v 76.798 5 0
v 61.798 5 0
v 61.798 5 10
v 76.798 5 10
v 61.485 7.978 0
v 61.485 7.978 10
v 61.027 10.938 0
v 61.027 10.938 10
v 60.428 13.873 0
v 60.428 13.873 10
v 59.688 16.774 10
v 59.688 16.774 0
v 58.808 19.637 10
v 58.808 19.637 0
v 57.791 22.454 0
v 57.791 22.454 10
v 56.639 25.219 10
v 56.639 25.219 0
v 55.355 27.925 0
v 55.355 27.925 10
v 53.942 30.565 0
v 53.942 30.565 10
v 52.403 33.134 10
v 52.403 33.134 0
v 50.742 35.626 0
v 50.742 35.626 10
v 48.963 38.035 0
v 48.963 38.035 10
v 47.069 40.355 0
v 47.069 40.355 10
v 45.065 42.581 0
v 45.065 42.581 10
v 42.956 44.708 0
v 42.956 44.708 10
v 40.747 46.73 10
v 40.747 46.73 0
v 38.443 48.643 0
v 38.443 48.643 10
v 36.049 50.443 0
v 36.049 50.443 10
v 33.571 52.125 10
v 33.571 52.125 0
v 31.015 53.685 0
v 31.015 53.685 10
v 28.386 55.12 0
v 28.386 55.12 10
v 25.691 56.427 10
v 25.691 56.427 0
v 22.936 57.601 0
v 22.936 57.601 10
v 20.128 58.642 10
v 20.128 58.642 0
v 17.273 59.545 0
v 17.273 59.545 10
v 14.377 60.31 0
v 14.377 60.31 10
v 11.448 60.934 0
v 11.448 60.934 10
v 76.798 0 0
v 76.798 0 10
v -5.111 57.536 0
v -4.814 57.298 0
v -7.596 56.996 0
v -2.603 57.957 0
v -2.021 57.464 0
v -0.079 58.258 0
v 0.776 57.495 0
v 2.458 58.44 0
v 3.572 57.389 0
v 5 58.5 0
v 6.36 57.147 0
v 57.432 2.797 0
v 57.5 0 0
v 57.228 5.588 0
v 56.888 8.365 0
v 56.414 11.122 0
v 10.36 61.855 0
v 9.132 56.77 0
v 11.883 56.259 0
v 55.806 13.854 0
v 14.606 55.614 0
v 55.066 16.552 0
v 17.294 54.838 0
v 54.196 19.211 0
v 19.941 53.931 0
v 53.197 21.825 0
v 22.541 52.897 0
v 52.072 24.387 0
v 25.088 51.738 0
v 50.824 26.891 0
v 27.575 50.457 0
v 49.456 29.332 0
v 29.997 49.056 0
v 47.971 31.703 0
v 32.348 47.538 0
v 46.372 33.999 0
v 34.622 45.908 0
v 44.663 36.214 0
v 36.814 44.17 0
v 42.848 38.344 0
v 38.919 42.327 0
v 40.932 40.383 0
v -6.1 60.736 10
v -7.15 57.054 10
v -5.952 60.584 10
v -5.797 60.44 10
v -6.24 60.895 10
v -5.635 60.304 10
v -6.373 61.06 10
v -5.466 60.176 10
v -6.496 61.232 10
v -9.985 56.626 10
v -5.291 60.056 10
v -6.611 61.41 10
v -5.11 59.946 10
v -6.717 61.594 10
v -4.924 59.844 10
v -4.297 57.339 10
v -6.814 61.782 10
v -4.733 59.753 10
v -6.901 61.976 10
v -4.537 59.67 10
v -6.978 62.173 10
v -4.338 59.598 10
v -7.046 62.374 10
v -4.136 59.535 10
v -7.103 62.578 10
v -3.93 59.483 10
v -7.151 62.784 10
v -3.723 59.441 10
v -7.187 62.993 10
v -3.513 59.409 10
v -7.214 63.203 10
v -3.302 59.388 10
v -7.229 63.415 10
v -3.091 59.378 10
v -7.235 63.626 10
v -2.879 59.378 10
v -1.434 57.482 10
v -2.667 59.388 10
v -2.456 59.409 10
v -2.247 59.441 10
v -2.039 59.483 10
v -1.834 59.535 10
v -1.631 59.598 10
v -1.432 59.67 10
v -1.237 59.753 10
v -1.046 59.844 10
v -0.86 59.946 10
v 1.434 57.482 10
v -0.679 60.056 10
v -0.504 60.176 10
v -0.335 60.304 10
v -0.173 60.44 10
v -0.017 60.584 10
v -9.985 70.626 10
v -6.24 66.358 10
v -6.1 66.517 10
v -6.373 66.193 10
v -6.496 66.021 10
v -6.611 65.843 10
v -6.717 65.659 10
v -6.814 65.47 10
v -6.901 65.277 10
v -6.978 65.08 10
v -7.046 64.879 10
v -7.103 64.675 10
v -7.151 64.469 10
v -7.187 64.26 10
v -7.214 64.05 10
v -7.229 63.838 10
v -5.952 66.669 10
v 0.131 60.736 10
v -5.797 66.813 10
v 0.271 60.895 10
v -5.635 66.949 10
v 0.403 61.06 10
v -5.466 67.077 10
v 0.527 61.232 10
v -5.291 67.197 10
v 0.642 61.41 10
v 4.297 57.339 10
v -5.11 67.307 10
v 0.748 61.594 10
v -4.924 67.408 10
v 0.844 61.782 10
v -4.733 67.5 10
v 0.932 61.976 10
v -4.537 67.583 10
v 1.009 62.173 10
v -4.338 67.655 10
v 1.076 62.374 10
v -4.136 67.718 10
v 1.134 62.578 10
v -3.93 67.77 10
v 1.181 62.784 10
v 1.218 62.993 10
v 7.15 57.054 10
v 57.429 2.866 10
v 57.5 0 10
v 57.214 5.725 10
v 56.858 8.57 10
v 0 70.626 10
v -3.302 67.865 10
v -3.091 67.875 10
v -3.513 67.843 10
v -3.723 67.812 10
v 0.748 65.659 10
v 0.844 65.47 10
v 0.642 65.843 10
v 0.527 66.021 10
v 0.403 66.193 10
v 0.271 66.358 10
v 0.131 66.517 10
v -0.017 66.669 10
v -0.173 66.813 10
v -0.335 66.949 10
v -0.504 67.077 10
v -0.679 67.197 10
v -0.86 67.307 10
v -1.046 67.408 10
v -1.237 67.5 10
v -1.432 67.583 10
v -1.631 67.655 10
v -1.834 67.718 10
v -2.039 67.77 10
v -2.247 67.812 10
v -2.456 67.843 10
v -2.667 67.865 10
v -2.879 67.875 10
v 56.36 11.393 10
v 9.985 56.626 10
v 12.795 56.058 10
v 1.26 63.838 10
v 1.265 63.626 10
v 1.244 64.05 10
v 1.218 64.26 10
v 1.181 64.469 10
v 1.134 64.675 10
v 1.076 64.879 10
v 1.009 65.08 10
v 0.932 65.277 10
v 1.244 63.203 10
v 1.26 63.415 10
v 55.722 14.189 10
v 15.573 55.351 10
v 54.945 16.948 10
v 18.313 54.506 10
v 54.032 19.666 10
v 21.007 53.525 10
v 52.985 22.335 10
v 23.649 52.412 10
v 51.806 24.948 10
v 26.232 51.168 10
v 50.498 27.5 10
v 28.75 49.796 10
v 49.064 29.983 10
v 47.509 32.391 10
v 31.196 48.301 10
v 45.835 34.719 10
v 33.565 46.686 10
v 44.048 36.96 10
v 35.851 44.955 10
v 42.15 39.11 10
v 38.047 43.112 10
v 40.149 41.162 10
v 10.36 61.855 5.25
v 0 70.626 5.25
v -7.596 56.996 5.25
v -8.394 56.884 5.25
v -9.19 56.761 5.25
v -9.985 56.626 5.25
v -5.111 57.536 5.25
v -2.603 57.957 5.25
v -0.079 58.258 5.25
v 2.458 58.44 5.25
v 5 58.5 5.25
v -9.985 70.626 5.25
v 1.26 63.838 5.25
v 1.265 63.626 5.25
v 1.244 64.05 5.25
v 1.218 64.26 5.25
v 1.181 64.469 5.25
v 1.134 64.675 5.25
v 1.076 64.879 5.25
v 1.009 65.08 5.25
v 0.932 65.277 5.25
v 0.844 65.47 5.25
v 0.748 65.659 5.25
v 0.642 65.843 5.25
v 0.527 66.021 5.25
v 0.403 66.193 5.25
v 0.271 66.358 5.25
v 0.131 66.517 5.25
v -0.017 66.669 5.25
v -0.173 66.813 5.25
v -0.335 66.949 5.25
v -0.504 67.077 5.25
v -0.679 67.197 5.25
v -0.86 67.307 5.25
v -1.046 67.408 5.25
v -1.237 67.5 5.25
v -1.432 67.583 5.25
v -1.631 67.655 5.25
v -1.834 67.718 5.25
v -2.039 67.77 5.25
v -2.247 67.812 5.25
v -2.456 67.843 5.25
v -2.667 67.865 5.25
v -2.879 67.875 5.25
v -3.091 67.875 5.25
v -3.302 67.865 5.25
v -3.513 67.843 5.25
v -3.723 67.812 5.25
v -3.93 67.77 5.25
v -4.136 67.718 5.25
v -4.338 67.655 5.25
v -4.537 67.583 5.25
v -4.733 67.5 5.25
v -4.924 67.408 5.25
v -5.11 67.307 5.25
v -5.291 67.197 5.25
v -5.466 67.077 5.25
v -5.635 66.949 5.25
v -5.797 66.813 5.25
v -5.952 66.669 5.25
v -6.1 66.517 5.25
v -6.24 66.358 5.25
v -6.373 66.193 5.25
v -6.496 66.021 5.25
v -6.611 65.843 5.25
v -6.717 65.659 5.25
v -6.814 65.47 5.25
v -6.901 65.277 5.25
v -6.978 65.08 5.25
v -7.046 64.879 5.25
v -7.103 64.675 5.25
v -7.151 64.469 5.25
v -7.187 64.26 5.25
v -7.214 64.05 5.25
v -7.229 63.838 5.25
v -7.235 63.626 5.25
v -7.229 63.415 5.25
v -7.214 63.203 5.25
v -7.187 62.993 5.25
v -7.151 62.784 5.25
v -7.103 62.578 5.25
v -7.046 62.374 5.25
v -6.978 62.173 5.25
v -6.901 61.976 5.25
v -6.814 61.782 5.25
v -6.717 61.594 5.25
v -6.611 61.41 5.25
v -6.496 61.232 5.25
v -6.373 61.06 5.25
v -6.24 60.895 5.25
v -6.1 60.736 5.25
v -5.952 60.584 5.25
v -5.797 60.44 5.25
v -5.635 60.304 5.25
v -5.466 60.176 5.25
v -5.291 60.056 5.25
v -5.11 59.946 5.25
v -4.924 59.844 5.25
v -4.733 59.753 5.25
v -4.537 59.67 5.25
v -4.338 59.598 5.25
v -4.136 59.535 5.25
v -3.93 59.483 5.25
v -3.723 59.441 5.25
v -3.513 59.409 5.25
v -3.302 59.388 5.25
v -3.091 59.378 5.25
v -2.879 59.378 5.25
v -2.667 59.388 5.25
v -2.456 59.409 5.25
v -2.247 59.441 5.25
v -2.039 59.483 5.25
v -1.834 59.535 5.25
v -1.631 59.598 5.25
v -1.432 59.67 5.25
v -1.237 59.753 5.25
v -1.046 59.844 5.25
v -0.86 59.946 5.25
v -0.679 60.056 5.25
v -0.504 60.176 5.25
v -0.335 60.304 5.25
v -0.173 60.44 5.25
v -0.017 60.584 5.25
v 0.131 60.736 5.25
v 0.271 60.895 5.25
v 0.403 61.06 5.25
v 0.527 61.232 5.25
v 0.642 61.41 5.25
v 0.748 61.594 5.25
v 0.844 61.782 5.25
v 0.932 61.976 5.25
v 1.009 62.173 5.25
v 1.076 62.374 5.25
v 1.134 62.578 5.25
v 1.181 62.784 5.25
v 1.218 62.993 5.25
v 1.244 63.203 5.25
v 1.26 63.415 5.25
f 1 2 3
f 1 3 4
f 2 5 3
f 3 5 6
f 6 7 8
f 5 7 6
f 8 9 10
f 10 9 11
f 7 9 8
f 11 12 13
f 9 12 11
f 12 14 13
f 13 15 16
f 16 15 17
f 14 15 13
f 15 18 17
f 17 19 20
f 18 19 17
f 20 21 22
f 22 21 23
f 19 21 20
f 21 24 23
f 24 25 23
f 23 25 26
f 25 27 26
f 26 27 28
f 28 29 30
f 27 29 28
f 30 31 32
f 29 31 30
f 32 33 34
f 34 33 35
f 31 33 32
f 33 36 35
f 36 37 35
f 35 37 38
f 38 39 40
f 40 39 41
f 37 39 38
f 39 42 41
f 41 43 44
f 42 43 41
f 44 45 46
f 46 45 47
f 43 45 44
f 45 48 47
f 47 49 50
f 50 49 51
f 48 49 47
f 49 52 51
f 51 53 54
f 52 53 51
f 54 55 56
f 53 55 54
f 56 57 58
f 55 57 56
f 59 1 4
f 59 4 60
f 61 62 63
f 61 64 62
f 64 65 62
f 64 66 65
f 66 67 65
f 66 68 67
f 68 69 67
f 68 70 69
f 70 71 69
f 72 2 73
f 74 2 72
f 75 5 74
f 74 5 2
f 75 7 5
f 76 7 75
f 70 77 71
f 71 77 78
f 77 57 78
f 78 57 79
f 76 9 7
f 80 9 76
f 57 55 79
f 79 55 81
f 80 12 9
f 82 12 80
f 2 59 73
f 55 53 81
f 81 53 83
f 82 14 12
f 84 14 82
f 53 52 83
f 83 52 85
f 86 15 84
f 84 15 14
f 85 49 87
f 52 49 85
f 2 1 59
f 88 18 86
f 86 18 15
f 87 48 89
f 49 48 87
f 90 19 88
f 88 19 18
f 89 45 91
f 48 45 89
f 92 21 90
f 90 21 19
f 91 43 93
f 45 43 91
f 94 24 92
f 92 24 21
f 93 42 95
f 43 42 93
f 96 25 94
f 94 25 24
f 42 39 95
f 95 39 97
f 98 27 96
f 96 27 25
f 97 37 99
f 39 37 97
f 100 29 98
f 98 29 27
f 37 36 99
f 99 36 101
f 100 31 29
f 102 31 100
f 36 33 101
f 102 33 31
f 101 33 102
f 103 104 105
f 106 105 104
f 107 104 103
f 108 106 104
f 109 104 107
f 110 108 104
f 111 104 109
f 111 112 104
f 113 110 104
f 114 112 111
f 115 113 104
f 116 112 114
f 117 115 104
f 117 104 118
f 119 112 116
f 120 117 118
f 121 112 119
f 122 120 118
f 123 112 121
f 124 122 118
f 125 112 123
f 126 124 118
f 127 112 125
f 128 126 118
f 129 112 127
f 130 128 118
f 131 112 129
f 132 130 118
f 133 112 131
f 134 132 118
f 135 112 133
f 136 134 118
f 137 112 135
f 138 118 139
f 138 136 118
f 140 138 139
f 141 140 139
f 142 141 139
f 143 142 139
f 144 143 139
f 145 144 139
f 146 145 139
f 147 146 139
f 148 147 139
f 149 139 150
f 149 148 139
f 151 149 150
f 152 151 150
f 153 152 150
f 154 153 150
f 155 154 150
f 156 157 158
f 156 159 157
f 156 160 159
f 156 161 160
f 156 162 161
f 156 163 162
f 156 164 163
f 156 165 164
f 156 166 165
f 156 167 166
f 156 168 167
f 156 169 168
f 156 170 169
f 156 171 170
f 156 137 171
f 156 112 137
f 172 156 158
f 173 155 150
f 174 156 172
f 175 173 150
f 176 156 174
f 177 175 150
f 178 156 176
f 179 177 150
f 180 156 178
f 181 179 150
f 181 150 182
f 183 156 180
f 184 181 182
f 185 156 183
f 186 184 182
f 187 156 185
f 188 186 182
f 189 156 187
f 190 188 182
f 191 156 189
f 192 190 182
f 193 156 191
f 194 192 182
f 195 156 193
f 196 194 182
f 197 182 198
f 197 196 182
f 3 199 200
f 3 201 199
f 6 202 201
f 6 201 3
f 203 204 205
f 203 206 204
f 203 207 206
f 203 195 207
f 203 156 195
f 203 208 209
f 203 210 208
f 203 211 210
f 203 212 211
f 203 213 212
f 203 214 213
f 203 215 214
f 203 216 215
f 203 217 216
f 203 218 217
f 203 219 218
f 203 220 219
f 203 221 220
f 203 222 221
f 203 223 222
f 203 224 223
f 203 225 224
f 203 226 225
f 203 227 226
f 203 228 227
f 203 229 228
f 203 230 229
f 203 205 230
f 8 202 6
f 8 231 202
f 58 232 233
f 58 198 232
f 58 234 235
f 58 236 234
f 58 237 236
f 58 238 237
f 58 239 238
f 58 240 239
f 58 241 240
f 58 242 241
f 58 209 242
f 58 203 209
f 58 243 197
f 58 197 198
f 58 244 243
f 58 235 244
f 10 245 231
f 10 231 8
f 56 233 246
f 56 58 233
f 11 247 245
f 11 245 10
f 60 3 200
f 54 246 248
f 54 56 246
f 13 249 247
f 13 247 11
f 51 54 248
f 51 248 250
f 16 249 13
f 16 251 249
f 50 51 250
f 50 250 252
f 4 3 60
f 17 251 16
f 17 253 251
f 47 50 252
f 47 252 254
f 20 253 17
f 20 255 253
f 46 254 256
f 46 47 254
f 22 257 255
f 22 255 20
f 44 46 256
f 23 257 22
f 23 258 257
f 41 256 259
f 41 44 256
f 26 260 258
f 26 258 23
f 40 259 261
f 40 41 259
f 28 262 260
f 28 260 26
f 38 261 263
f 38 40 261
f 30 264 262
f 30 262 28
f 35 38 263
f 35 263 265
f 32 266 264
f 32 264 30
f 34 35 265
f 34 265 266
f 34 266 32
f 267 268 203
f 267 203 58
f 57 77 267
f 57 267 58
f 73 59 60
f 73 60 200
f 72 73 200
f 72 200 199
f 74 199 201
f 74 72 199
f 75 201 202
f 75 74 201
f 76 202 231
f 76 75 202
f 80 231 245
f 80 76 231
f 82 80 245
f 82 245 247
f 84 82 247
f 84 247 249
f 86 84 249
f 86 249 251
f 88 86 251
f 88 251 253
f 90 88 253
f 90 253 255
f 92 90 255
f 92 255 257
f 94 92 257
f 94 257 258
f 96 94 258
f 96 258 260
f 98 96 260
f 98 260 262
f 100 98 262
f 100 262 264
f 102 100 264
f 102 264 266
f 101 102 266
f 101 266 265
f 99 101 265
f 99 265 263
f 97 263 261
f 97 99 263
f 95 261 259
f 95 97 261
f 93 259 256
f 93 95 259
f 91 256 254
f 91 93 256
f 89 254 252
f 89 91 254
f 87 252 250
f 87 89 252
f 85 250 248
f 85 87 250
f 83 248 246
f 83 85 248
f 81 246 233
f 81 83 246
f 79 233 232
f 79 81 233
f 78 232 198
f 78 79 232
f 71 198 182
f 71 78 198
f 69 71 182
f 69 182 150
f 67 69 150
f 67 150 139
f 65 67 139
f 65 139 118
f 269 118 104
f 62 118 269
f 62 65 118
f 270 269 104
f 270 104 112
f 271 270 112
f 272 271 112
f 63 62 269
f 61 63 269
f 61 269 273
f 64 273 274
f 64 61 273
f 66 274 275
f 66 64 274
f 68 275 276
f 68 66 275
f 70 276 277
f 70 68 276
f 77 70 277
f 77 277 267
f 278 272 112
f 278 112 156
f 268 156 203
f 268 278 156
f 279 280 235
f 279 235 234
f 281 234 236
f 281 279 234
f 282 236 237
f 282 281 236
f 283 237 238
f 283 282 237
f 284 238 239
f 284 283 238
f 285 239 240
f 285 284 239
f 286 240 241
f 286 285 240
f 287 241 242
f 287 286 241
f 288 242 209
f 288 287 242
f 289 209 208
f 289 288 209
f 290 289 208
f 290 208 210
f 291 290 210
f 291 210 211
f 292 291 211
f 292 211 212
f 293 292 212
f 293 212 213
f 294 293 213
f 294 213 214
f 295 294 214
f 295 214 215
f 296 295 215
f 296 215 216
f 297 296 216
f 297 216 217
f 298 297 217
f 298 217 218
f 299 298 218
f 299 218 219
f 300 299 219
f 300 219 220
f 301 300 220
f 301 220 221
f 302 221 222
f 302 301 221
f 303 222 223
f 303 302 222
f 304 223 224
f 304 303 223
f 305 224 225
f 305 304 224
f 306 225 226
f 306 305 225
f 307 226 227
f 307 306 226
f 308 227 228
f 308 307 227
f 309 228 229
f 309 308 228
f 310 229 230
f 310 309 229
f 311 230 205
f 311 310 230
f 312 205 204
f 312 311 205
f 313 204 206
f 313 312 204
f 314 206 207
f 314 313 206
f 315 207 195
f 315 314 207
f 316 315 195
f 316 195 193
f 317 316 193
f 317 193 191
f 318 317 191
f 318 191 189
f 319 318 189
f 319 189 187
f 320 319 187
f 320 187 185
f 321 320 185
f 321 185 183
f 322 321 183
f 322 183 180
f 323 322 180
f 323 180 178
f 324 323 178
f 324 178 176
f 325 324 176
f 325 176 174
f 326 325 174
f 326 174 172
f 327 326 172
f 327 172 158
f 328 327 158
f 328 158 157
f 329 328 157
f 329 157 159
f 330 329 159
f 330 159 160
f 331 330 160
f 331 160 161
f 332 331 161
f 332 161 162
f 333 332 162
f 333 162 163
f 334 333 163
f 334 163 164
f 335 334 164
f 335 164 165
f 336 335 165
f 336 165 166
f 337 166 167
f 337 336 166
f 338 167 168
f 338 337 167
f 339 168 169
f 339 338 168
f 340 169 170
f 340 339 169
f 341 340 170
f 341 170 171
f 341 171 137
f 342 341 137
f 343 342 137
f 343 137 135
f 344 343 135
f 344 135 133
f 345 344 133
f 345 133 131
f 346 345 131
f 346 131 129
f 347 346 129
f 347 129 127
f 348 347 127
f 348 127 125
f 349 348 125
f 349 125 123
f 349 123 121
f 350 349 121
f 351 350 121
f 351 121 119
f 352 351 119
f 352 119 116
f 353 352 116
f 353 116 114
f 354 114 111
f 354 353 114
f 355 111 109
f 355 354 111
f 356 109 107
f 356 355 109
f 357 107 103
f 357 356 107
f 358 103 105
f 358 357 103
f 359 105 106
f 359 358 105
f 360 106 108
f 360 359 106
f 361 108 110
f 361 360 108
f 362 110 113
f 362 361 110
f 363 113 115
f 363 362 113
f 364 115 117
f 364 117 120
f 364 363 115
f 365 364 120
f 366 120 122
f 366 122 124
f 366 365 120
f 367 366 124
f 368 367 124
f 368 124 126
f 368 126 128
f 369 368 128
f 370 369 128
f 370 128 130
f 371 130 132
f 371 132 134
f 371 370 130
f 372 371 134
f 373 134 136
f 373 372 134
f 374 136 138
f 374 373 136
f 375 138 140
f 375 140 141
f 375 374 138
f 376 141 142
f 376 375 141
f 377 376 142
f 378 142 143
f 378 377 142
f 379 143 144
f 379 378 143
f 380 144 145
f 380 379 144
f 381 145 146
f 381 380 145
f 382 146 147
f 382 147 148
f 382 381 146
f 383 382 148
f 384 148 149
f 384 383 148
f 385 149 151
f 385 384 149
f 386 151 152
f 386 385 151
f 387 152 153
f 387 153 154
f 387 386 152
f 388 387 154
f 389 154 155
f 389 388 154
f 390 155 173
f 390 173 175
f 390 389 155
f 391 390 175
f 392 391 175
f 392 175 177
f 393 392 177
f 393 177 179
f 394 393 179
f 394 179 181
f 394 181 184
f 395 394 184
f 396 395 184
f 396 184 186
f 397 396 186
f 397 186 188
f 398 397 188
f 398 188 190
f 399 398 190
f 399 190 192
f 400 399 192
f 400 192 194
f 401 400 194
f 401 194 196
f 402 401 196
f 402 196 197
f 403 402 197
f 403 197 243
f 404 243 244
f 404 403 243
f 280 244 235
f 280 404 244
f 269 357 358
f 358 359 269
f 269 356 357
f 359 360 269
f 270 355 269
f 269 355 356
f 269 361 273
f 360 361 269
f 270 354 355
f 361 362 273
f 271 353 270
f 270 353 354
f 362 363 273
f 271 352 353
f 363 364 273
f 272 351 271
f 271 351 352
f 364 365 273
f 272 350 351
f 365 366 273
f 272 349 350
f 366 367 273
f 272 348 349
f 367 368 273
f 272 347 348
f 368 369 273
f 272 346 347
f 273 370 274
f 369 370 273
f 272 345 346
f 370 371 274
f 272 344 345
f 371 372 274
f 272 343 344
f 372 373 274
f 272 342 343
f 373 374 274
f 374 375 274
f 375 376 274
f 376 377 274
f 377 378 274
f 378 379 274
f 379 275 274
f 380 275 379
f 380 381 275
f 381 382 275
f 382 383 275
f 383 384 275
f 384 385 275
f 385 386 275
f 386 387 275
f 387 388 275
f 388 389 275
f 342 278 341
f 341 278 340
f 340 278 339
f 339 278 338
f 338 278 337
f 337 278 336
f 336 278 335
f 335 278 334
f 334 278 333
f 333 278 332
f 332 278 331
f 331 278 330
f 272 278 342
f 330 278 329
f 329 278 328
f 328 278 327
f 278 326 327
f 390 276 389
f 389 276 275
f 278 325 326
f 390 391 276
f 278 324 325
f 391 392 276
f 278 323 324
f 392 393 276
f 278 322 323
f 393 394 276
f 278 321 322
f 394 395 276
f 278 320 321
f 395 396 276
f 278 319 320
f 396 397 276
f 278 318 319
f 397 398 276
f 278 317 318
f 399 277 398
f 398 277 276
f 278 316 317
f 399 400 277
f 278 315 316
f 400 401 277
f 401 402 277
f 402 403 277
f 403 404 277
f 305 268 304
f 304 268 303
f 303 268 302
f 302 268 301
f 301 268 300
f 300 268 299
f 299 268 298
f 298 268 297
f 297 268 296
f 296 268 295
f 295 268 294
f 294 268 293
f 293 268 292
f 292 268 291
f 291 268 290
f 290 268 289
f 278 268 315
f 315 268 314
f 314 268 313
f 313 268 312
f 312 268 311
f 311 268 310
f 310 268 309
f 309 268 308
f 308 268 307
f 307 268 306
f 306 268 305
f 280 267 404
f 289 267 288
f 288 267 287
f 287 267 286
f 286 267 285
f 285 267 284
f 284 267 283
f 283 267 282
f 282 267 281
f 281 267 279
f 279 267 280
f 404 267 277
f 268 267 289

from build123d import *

# Parameters (mm, degrees)
SKETCH_R     = 4.25
PAD_DEPTH    = 10
POCKET_DEPTH = 5.25


with BuildPart() as part:
    # Sketch → Pad (new body)
    with BuildSketch(Plane.XY):
        with BuildLine():
            ThreePointArc((57.5, 0), (36.960288, 44.047555), (-9.98477, 56.626446))
            Line((-9.98477, 56.626446), (-9.98477, 70.626446))
            Line((0, 70.626446), (-9.98477, 70.626446))
            Line((0, 70.626446), (11.447938, 60.933937))
            ThreePointArc((61.798058, 5), (46.080314, 41.480172), (11.447938, 60.933937))
            Line((61.798058, 5), (76.798058, 5))
            Line((76.798058, 5), (76.798058, 0))
            Line((76.798058, 0), (57.5, 0))
        make_face()
        with Locations((-2.98477, 63.626446)):
            Circle(SKETCH_R, mode=Mode.SUBTRACT)
    extrude(amount=PAD_DEPTH)

    # Sketch001 (on Face10 of Pad) → Pocket (cut)
    with BuildSketch(Plane(origin=(0, 0, 0), x_dir=(1, 0, 0), z_dir=(0, 0, -1))):
        with BuildLine():
            ThreePointArc((-10.105268, -56.323298), (-2.630648, -57.953028), (5, -58.5))
            Line((5, -58.5), (11.780711, -62.745227))
            Line((4.894732, -71.323298), (11.780711, -62.745227))
            Line((-10.105268, -71.323298), (4.894732, -71.323298))
            Line((-10.105268, -56.323298), (-10.105268, -71.323298))
        make_face()
    extrude(amount=-POCKET_DEPTH, mode=Mode.SUBTRACT)


solid = part.part
